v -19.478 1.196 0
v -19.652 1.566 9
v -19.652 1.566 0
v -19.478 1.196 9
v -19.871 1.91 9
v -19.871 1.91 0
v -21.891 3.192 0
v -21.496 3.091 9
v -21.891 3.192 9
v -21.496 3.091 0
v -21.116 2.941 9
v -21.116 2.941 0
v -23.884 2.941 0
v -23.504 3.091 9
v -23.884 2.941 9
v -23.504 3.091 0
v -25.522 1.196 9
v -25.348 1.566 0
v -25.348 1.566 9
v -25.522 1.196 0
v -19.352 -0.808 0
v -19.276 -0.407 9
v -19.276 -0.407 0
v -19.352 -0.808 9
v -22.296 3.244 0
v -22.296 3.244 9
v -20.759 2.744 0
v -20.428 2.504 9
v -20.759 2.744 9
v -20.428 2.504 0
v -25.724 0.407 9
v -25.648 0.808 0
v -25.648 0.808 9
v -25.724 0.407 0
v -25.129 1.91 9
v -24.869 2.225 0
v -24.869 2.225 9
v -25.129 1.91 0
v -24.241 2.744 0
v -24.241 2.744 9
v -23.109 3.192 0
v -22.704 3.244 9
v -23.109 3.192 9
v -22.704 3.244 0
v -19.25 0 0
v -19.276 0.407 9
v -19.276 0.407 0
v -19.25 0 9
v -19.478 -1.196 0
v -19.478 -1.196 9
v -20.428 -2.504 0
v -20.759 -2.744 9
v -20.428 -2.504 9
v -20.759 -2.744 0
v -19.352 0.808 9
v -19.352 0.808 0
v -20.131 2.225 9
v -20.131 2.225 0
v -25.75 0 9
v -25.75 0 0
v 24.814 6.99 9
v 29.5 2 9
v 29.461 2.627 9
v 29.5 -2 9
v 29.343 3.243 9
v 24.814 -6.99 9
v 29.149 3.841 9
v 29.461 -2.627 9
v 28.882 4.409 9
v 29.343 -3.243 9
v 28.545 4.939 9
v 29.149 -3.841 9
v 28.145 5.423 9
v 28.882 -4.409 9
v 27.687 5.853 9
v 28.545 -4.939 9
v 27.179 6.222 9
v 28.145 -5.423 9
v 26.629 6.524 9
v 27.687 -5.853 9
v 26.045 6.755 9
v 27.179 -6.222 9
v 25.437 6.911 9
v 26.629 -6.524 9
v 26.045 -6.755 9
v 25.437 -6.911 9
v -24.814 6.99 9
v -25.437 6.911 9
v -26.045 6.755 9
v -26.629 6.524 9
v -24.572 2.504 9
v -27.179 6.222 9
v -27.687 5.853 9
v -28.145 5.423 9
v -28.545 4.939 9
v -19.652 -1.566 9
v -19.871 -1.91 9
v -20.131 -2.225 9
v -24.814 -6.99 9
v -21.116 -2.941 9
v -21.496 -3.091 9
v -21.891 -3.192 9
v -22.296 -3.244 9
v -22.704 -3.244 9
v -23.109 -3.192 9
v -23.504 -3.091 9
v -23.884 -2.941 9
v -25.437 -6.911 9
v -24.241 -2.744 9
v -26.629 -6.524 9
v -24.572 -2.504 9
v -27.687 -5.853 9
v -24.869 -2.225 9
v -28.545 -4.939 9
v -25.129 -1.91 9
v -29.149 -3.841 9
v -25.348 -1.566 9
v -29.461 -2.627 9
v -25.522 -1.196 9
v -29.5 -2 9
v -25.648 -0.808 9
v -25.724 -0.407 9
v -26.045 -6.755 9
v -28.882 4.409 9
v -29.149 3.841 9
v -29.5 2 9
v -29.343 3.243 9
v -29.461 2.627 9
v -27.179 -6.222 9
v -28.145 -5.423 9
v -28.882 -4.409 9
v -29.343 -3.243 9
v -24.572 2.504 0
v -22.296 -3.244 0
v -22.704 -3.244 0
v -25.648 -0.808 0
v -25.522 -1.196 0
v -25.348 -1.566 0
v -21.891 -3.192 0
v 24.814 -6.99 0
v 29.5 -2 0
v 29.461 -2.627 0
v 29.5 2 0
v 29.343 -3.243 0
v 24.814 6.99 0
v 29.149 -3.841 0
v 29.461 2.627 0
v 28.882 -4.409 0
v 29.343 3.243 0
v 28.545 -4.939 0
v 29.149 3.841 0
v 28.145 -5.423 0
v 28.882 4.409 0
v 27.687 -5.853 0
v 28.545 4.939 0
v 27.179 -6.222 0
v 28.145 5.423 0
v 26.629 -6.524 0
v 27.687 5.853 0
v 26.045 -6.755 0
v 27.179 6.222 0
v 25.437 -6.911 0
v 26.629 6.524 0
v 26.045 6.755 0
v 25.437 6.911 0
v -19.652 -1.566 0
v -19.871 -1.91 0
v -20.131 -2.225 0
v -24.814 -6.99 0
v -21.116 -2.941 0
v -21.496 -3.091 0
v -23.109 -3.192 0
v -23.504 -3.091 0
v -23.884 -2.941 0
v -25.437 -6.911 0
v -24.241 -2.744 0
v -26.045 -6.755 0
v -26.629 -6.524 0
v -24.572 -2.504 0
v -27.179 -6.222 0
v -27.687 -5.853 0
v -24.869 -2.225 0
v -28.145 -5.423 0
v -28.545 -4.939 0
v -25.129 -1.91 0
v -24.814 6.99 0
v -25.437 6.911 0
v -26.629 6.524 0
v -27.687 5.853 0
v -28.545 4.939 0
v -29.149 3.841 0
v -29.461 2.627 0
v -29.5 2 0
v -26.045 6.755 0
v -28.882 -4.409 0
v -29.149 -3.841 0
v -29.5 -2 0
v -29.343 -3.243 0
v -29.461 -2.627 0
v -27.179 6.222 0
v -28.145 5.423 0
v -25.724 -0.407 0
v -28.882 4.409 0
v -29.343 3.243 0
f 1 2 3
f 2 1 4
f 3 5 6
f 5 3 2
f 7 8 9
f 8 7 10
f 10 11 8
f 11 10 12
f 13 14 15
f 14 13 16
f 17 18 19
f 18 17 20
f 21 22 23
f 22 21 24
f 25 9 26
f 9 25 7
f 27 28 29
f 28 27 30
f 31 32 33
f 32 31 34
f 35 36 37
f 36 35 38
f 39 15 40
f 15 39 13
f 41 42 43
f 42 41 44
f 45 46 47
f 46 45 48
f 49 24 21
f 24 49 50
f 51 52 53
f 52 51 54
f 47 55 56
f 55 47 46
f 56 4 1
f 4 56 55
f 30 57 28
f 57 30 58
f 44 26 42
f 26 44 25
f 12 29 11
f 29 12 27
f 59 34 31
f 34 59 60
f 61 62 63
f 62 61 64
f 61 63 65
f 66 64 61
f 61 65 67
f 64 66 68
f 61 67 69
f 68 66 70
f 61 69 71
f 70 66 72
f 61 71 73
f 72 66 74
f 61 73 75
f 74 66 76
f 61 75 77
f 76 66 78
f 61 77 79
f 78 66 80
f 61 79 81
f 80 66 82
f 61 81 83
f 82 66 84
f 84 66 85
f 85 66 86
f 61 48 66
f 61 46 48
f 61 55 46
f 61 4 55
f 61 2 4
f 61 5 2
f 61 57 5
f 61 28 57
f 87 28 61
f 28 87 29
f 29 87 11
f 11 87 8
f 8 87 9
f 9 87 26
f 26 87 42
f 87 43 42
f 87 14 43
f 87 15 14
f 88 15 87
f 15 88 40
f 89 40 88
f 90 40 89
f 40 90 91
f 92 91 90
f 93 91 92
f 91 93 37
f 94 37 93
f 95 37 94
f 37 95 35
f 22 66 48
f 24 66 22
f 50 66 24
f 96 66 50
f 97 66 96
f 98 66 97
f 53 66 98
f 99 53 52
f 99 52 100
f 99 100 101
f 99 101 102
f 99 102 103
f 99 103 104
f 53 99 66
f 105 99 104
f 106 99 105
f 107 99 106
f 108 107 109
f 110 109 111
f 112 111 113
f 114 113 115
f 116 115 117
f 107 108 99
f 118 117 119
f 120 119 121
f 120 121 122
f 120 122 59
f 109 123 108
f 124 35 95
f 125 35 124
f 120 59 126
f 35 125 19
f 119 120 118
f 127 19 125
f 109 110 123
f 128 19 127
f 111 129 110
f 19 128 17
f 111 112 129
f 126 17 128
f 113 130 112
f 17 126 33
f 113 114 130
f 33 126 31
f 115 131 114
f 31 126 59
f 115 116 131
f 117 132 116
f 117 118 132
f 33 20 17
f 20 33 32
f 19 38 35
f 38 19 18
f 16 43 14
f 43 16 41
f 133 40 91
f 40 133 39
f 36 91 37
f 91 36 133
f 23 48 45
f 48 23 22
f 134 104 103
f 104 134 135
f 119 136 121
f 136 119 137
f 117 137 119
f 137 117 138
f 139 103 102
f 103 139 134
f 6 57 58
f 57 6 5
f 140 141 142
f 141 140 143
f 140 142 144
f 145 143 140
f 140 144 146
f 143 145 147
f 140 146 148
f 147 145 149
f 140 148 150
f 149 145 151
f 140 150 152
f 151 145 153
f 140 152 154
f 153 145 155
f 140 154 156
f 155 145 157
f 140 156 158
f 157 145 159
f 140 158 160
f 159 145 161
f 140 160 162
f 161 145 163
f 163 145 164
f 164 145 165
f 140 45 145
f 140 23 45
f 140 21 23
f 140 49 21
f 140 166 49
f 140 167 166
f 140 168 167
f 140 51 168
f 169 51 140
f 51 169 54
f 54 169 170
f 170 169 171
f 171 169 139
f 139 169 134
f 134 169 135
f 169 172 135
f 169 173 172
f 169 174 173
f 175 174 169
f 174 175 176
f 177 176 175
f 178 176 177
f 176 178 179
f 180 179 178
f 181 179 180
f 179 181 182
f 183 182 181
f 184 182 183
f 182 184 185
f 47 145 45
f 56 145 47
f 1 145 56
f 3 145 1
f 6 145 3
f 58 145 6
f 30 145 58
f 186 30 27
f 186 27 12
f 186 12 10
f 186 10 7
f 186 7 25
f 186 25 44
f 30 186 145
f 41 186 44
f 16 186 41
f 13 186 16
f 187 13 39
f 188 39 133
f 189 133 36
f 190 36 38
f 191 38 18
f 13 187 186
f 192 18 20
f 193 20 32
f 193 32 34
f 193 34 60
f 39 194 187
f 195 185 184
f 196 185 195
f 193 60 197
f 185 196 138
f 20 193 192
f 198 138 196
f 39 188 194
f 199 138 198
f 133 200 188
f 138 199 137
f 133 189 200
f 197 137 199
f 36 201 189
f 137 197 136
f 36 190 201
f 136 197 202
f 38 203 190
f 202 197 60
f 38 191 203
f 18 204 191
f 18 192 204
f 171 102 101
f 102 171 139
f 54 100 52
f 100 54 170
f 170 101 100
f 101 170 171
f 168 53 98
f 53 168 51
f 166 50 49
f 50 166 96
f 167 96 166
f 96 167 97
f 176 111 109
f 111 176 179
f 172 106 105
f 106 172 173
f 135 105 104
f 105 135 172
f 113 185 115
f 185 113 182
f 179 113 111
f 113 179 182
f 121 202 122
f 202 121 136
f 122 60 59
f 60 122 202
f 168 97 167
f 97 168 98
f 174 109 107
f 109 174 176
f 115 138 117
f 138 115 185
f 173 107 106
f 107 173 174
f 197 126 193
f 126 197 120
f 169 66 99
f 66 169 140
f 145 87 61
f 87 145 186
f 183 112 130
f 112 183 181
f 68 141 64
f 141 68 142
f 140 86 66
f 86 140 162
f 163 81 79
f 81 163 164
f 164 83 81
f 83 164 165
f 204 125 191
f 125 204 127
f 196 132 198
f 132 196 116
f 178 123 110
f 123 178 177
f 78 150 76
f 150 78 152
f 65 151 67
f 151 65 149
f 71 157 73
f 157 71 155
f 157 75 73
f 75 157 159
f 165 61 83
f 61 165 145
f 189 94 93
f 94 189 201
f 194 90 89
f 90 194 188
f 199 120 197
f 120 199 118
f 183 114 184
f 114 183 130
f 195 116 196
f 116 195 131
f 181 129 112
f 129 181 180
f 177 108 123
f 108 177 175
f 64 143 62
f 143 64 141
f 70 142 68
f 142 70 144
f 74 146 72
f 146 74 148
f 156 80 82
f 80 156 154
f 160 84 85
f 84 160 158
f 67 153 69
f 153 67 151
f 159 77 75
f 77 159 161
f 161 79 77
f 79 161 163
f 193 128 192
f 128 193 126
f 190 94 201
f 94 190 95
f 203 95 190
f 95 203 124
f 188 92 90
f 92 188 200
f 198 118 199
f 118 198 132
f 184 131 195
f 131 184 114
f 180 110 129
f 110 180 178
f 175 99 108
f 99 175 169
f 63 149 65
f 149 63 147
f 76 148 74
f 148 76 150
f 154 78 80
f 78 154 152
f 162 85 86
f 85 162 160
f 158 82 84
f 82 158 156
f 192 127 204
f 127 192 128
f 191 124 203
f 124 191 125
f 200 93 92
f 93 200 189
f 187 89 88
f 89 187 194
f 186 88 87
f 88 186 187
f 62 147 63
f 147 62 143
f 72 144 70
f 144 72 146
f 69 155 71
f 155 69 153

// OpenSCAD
$fn = 50;


difference() {
	union() {
		hull() {
			translate(v = [-24.5000000000, 2.0000000000, 0]) {
				cylinder(h = 9, r = 5);
			}
			translate(v = [24.5000000000, 2.0000000000, 0]) {
				cylinder(h = 9, r = 5);
			}
			translate(v = [-24.5000000000, -2.0000000000, 0]) {
				cylinder(h = 9, r = 5);
			}
			translate(v = [24.5000000000, -2.0000000000, 0]) {
				cylinder(h = 9, r = 5);
			}
		}
	}
	union() {
		translate(v = [-22.5000000000, 0.0000000000, 0]) {
			cylinder(h = 9, r = 3.2500000000);
		}
		translate(v = [-22.5000000000, 0.0000000000, 0]) {
			cylinder(h = 9, r = 1.8000000000);
		}
		translate(v = [-22.5000000000, 0.0000000000, 0]) {
			cylinder(h = 9, r = 1.8000000000);
		}
		translate(v = [-22.5000000000, 0.0000000000, 0]) {
			cylinder(h = 9, r = 1.8000000000);
		}
	}
}
